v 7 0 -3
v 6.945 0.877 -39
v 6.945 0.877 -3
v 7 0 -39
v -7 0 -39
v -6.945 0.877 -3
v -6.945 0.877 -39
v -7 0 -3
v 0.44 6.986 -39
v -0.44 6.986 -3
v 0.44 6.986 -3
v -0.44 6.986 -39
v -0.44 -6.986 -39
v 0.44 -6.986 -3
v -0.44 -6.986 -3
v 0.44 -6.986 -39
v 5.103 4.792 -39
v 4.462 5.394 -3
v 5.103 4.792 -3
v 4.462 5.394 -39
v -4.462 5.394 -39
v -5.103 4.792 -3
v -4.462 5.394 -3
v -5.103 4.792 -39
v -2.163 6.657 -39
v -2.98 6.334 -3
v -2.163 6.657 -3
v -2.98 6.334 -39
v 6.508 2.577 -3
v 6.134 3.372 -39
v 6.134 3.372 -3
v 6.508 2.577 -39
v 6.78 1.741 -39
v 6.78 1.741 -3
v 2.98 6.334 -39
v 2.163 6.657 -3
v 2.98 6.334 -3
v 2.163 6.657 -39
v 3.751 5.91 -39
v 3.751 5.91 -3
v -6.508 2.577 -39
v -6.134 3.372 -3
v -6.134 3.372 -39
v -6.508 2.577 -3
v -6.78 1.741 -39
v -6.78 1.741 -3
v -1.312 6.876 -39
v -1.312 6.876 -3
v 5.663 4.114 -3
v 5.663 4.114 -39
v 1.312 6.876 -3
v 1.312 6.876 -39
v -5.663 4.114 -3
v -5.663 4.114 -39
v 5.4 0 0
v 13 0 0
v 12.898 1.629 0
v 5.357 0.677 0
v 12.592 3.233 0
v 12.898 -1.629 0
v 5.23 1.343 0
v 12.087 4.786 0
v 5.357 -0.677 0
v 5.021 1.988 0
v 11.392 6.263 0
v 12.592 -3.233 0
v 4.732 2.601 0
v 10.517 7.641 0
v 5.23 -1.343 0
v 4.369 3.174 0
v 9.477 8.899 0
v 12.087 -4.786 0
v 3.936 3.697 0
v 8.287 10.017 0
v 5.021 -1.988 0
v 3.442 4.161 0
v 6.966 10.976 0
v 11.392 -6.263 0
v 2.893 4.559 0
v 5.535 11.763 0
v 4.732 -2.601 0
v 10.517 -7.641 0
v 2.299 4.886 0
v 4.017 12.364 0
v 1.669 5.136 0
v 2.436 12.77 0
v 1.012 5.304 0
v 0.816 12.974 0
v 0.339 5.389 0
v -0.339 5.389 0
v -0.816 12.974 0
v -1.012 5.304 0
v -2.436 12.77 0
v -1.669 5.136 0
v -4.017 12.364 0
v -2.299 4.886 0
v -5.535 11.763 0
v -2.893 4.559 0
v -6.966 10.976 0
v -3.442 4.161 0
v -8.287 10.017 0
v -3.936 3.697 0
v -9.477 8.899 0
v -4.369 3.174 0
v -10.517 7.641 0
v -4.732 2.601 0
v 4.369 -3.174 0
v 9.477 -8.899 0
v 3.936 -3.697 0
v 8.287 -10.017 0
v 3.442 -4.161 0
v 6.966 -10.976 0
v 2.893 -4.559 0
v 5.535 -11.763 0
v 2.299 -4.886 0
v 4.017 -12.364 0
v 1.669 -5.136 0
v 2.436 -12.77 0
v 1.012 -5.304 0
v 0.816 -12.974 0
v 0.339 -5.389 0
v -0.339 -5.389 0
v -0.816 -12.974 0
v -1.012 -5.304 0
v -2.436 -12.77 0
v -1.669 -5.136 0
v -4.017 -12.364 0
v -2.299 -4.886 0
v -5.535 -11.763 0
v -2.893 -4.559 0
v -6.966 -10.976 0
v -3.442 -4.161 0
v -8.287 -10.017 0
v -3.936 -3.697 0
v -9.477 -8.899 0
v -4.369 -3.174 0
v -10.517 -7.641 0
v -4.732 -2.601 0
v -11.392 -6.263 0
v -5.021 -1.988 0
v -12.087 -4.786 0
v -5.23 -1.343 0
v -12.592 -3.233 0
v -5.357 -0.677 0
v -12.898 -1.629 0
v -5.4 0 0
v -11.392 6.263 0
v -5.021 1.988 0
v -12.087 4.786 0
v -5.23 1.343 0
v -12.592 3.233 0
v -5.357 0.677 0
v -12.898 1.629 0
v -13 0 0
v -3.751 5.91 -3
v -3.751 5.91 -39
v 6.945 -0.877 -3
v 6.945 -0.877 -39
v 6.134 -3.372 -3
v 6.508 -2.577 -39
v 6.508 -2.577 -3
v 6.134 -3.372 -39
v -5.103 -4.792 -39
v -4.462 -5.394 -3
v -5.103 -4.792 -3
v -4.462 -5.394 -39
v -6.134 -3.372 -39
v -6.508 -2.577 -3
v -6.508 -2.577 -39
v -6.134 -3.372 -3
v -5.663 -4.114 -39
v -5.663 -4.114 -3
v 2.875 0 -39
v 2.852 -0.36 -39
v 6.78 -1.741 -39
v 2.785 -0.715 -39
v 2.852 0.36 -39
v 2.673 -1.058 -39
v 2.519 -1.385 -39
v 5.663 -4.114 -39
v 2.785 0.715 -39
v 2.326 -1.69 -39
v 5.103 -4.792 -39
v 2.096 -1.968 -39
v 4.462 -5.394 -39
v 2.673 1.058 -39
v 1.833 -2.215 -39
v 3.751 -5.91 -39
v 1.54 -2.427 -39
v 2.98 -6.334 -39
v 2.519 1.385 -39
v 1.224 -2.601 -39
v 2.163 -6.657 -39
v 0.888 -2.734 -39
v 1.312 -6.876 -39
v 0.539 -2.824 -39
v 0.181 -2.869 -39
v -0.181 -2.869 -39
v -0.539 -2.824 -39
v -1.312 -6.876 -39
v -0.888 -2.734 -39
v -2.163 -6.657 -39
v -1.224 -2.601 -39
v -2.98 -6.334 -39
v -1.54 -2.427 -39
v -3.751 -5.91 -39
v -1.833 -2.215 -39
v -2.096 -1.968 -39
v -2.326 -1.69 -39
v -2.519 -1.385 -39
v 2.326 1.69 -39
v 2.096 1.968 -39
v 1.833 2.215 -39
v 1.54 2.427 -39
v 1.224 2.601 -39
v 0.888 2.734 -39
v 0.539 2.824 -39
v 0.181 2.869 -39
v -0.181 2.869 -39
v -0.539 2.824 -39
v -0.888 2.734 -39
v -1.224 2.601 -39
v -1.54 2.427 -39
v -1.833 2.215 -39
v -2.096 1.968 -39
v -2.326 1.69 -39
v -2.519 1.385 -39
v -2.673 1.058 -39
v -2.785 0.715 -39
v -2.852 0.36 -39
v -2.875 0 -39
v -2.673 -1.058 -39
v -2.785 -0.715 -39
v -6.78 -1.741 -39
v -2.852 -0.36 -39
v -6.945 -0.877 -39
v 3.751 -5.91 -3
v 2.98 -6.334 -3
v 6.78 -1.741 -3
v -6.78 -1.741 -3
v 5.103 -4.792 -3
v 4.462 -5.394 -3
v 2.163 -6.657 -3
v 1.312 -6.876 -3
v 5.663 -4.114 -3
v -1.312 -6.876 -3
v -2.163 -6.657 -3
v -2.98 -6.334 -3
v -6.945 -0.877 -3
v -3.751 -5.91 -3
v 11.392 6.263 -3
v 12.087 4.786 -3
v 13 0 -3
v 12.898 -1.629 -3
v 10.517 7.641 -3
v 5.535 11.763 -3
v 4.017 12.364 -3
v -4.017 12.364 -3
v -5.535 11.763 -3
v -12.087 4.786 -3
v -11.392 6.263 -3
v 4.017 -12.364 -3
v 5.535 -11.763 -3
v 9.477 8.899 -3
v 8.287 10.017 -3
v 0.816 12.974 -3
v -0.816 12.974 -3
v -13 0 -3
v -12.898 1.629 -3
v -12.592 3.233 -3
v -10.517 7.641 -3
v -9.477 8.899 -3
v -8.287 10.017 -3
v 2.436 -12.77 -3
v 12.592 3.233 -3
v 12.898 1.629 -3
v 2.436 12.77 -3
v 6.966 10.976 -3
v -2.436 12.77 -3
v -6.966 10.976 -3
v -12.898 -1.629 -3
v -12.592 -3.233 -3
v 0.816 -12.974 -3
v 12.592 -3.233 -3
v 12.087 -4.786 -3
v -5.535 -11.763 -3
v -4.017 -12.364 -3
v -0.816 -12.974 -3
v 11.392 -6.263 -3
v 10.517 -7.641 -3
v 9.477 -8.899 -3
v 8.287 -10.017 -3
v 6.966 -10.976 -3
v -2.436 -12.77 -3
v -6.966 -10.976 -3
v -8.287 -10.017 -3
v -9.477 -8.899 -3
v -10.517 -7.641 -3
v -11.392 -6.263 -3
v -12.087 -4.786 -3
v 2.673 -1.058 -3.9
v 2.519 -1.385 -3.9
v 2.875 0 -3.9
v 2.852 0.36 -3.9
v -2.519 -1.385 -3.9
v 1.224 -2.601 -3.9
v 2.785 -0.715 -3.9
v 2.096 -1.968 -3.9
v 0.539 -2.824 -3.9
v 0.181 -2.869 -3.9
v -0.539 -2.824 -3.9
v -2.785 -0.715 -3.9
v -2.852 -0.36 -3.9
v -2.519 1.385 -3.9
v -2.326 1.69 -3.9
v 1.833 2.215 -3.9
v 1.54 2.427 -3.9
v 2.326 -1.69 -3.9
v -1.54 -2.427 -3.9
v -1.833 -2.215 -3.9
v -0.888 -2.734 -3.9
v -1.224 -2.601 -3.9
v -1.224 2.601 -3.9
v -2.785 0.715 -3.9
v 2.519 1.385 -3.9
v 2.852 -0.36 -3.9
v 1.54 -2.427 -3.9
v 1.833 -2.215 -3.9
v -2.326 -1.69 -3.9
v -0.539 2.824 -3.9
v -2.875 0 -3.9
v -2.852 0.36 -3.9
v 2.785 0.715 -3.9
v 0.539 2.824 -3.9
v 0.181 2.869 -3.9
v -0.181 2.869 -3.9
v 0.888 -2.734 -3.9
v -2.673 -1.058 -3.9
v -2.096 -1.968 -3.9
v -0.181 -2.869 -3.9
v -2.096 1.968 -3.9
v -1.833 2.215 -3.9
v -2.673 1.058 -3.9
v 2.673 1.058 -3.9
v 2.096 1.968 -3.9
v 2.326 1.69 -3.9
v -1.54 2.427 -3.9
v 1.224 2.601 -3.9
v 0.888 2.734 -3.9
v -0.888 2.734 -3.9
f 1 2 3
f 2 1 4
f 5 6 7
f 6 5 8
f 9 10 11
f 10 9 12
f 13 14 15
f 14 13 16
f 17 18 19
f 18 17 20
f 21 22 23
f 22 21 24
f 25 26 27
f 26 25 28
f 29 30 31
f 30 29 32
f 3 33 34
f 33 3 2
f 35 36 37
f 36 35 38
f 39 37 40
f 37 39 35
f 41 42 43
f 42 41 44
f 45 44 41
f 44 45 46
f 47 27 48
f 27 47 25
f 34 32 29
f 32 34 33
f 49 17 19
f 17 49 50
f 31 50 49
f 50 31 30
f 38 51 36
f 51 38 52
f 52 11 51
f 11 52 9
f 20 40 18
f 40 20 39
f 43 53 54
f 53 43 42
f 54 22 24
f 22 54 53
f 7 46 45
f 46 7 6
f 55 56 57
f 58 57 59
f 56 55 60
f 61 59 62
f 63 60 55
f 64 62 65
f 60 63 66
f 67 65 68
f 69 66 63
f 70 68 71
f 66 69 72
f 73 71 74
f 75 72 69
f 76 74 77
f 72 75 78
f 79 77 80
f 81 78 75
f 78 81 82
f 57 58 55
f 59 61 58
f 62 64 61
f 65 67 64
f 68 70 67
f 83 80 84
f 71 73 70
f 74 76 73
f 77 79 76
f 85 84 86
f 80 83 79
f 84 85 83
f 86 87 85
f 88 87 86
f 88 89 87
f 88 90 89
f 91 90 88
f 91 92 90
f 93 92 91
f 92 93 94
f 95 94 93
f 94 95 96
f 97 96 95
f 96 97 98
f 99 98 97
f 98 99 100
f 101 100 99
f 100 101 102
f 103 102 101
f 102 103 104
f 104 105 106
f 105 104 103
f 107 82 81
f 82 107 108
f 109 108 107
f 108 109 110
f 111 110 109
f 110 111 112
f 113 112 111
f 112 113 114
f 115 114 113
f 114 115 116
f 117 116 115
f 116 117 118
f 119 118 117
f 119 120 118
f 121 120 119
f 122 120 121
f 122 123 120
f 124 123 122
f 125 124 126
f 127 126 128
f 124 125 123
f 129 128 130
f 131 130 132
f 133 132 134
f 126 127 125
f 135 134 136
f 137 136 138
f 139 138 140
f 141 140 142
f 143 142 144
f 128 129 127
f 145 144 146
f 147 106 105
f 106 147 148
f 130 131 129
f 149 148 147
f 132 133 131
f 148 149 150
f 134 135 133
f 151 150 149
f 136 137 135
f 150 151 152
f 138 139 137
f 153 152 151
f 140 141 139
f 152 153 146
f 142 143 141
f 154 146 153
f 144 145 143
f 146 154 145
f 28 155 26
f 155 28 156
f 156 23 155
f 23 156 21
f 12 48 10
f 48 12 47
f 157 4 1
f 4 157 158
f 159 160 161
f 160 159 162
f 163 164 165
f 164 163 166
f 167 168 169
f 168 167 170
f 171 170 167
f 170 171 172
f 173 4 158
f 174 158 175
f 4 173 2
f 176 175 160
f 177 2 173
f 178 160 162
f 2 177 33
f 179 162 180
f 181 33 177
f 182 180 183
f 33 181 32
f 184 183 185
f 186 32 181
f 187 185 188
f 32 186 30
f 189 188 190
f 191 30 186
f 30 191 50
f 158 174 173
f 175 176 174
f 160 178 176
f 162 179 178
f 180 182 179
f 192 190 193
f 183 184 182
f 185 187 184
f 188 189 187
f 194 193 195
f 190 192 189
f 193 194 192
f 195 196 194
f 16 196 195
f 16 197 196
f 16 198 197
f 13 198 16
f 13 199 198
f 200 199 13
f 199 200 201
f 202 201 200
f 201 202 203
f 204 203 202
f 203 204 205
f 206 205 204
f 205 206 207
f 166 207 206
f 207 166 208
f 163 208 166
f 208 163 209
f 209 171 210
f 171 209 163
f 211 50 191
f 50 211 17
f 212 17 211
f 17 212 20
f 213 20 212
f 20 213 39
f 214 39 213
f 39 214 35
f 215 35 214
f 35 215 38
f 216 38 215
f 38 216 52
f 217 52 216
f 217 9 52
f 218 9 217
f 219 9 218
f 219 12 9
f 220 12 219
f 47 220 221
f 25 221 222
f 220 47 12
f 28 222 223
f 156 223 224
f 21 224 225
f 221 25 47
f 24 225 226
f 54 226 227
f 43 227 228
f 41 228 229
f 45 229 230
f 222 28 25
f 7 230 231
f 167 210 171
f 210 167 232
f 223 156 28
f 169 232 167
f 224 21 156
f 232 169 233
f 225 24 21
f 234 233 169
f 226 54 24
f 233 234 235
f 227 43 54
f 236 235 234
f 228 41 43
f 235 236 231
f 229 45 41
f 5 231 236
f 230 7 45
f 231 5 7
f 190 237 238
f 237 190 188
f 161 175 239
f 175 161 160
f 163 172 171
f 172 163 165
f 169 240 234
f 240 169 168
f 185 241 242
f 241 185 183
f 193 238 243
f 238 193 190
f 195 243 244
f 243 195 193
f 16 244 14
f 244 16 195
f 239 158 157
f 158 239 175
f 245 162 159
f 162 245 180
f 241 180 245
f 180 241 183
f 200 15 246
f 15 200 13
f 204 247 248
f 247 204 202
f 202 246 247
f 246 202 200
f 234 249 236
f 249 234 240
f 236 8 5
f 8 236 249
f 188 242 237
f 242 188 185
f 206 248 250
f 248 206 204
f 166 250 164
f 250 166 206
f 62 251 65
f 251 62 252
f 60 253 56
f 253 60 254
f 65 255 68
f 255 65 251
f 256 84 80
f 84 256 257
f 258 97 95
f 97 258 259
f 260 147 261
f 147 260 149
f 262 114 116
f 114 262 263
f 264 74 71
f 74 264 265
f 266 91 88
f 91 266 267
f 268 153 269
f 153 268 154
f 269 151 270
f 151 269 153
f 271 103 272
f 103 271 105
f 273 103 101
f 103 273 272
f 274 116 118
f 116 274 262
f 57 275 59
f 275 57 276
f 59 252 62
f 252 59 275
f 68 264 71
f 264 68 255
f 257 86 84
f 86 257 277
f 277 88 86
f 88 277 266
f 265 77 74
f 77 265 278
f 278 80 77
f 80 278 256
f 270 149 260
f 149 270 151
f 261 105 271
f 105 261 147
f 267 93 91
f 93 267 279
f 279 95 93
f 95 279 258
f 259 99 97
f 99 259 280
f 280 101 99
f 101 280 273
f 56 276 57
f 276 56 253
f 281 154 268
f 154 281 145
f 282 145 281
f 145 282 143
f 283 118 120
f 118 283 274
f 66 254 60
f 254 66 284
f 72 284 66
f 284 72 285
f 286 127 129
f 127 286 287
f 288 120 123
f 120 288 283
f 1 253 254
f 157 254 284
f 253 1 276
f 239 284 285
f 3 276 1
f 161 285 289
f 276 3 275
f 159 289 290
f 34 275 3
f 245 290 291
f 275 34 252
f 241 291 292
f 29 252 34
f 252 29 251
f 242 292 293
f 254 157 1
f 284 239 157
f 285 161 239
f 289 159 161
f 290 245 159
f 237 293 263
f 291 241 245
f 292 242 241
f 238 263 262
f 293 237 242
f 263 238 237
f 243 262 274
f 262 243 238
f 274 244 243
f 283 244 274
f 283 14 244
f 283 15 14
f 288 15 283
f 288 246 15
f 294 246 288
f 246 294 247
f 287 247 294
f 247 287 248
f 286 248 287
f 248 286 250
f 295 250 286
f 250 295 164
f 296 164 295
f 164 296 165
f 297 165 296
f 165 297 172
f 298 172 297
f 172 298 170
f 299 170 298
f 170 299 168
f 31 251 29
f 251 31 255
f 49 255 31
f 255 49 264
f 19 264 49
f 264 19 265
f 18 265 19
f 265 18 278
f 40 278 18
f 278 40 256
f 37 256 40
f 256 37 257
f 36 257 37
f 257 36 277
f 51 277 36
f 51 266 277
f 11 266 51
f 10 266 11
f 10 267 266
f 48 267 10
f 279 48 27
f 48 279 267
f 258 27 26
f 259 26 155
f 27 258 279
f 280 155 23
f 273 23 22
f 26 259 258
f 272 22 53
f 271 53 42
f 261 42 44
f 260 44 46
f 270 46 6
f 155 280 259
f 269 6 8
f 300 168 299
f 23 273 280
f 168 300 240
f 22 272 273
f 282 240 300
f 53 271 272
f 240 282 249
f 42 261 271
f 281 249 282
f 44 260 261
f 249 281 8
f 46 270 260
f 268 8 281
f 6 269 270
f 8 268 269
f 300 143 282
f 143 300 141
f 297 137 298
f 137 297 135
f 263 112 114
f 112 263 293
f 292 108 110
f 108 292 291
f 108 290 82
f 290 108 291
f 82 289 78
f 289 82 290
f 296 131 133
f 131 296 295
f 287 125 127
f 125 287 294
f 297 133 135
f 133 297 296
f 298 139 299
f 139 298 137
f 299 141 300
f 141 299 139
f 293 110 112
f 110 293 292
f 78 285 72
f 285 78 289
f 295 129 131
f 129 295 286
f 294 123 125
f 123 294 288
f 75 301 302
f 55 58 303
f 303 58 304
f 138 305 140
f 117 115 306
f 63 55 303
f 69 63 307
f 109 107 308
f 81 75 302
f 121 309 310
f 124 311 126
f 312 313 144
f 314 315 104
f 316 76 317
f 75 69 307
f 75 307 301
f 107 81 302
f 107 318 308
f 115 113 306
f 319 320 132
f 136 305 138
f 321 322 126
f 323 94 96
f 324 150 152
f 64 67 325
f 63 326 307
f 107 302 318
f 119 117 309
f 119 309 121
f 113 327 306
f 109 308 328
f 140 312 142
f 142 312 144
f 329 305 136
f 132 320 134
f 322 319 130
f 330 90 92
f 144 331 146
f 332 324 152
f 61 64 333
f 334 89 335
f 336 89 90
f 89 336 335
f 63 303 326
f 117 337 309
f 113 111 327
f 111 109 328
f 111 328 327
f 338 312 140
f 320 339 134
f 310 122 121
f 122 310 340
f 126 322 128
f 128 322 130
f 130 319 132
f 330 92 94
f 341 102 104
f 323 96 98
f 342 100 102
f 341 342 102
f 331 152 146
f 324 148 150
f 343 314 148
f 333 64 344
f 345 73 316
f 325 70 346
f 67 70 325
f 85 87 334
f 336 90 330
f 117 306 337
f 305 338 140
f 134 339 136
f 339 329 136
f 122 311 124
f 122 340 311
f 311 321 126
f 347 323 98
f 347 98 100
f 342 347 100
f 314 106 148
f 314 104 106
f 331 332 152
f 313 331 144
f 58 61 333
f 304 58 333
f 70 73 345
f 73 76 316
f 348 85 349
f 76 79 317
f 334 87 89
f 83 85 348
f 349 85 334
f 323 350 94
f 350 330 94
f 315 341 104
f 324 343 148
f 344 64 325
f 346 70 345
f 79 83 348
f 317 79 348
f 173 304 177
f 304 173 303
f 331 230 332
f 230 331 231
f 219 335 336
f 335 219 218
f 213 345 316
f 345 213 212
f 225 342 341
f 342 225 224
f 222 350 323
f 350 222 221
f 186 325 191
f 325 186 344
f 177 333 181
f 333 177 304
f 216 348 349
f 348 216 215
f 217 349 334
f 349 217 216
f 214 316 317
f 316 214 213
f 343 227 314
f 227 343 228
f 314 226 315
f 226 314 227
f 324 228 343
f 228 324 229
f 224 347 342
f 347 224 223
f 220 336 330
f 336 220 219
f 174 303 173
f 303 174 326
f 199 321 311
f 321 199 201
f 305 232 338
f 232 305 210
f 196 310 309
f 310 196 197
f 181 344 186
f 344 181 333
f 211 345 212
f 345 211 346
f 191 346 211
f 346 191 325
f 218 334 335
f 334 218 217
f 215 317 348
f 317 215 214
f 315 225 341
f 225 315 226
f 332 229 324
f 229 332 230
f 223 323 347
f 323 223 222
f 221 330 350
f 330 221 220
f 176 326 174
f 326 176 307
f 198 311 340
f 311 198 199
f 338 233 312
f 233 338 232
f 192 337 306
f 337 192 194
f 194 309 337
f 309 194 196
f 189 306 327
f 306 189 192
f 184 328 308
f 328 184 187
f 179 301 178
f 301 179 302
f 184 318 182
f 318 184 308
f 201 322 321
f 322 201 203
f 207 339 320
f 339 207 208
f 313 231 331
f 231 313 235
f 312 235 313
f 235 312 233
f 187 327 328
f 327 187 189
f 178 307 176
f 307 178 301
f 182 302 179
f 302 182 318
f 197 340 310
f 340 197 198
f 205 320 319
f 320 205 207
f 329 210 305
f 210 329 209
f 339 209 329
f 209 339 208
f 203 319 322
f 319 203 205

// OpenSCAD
$fn = 50;


difference() {
	union() {
		translate(v = [0, 0, -39.0000000000]) {
			cylinder(h = 39, r = 7.0000000000);
		}
		translate(v = [0, 0, -3.0000000000]) {
			cylinder(h = 3, r = 13.0000000000);
		}
	}
	union() {
		translate(v = [0, 0, 0]) {
			rotate(a = [0, 0, 0]) {
				difference() {
					union() {
						#translate(v = [0, 0, -39.0000000000]) {
							cylinder(h = 39, r = 2.6000000000);
						}
						#translate(v = [0, 0, -3.9000000000]) {
							cylinder(h = 3.9000000000, r = 7.0000000000, r1 = 2.8750000000, r2 = 5.4000000000);
						}
						#translate(v = [0, 0, -39.0000000000]) {
							cylinder(h = 39, r = 2.8750000000);
						}
						#translate(v = [0, 0, -39.0000000000]) {
							cylinder(h = 39, r = 2.6000000000);
						}
					}
					union();
				}
			}
		}
	}
}
